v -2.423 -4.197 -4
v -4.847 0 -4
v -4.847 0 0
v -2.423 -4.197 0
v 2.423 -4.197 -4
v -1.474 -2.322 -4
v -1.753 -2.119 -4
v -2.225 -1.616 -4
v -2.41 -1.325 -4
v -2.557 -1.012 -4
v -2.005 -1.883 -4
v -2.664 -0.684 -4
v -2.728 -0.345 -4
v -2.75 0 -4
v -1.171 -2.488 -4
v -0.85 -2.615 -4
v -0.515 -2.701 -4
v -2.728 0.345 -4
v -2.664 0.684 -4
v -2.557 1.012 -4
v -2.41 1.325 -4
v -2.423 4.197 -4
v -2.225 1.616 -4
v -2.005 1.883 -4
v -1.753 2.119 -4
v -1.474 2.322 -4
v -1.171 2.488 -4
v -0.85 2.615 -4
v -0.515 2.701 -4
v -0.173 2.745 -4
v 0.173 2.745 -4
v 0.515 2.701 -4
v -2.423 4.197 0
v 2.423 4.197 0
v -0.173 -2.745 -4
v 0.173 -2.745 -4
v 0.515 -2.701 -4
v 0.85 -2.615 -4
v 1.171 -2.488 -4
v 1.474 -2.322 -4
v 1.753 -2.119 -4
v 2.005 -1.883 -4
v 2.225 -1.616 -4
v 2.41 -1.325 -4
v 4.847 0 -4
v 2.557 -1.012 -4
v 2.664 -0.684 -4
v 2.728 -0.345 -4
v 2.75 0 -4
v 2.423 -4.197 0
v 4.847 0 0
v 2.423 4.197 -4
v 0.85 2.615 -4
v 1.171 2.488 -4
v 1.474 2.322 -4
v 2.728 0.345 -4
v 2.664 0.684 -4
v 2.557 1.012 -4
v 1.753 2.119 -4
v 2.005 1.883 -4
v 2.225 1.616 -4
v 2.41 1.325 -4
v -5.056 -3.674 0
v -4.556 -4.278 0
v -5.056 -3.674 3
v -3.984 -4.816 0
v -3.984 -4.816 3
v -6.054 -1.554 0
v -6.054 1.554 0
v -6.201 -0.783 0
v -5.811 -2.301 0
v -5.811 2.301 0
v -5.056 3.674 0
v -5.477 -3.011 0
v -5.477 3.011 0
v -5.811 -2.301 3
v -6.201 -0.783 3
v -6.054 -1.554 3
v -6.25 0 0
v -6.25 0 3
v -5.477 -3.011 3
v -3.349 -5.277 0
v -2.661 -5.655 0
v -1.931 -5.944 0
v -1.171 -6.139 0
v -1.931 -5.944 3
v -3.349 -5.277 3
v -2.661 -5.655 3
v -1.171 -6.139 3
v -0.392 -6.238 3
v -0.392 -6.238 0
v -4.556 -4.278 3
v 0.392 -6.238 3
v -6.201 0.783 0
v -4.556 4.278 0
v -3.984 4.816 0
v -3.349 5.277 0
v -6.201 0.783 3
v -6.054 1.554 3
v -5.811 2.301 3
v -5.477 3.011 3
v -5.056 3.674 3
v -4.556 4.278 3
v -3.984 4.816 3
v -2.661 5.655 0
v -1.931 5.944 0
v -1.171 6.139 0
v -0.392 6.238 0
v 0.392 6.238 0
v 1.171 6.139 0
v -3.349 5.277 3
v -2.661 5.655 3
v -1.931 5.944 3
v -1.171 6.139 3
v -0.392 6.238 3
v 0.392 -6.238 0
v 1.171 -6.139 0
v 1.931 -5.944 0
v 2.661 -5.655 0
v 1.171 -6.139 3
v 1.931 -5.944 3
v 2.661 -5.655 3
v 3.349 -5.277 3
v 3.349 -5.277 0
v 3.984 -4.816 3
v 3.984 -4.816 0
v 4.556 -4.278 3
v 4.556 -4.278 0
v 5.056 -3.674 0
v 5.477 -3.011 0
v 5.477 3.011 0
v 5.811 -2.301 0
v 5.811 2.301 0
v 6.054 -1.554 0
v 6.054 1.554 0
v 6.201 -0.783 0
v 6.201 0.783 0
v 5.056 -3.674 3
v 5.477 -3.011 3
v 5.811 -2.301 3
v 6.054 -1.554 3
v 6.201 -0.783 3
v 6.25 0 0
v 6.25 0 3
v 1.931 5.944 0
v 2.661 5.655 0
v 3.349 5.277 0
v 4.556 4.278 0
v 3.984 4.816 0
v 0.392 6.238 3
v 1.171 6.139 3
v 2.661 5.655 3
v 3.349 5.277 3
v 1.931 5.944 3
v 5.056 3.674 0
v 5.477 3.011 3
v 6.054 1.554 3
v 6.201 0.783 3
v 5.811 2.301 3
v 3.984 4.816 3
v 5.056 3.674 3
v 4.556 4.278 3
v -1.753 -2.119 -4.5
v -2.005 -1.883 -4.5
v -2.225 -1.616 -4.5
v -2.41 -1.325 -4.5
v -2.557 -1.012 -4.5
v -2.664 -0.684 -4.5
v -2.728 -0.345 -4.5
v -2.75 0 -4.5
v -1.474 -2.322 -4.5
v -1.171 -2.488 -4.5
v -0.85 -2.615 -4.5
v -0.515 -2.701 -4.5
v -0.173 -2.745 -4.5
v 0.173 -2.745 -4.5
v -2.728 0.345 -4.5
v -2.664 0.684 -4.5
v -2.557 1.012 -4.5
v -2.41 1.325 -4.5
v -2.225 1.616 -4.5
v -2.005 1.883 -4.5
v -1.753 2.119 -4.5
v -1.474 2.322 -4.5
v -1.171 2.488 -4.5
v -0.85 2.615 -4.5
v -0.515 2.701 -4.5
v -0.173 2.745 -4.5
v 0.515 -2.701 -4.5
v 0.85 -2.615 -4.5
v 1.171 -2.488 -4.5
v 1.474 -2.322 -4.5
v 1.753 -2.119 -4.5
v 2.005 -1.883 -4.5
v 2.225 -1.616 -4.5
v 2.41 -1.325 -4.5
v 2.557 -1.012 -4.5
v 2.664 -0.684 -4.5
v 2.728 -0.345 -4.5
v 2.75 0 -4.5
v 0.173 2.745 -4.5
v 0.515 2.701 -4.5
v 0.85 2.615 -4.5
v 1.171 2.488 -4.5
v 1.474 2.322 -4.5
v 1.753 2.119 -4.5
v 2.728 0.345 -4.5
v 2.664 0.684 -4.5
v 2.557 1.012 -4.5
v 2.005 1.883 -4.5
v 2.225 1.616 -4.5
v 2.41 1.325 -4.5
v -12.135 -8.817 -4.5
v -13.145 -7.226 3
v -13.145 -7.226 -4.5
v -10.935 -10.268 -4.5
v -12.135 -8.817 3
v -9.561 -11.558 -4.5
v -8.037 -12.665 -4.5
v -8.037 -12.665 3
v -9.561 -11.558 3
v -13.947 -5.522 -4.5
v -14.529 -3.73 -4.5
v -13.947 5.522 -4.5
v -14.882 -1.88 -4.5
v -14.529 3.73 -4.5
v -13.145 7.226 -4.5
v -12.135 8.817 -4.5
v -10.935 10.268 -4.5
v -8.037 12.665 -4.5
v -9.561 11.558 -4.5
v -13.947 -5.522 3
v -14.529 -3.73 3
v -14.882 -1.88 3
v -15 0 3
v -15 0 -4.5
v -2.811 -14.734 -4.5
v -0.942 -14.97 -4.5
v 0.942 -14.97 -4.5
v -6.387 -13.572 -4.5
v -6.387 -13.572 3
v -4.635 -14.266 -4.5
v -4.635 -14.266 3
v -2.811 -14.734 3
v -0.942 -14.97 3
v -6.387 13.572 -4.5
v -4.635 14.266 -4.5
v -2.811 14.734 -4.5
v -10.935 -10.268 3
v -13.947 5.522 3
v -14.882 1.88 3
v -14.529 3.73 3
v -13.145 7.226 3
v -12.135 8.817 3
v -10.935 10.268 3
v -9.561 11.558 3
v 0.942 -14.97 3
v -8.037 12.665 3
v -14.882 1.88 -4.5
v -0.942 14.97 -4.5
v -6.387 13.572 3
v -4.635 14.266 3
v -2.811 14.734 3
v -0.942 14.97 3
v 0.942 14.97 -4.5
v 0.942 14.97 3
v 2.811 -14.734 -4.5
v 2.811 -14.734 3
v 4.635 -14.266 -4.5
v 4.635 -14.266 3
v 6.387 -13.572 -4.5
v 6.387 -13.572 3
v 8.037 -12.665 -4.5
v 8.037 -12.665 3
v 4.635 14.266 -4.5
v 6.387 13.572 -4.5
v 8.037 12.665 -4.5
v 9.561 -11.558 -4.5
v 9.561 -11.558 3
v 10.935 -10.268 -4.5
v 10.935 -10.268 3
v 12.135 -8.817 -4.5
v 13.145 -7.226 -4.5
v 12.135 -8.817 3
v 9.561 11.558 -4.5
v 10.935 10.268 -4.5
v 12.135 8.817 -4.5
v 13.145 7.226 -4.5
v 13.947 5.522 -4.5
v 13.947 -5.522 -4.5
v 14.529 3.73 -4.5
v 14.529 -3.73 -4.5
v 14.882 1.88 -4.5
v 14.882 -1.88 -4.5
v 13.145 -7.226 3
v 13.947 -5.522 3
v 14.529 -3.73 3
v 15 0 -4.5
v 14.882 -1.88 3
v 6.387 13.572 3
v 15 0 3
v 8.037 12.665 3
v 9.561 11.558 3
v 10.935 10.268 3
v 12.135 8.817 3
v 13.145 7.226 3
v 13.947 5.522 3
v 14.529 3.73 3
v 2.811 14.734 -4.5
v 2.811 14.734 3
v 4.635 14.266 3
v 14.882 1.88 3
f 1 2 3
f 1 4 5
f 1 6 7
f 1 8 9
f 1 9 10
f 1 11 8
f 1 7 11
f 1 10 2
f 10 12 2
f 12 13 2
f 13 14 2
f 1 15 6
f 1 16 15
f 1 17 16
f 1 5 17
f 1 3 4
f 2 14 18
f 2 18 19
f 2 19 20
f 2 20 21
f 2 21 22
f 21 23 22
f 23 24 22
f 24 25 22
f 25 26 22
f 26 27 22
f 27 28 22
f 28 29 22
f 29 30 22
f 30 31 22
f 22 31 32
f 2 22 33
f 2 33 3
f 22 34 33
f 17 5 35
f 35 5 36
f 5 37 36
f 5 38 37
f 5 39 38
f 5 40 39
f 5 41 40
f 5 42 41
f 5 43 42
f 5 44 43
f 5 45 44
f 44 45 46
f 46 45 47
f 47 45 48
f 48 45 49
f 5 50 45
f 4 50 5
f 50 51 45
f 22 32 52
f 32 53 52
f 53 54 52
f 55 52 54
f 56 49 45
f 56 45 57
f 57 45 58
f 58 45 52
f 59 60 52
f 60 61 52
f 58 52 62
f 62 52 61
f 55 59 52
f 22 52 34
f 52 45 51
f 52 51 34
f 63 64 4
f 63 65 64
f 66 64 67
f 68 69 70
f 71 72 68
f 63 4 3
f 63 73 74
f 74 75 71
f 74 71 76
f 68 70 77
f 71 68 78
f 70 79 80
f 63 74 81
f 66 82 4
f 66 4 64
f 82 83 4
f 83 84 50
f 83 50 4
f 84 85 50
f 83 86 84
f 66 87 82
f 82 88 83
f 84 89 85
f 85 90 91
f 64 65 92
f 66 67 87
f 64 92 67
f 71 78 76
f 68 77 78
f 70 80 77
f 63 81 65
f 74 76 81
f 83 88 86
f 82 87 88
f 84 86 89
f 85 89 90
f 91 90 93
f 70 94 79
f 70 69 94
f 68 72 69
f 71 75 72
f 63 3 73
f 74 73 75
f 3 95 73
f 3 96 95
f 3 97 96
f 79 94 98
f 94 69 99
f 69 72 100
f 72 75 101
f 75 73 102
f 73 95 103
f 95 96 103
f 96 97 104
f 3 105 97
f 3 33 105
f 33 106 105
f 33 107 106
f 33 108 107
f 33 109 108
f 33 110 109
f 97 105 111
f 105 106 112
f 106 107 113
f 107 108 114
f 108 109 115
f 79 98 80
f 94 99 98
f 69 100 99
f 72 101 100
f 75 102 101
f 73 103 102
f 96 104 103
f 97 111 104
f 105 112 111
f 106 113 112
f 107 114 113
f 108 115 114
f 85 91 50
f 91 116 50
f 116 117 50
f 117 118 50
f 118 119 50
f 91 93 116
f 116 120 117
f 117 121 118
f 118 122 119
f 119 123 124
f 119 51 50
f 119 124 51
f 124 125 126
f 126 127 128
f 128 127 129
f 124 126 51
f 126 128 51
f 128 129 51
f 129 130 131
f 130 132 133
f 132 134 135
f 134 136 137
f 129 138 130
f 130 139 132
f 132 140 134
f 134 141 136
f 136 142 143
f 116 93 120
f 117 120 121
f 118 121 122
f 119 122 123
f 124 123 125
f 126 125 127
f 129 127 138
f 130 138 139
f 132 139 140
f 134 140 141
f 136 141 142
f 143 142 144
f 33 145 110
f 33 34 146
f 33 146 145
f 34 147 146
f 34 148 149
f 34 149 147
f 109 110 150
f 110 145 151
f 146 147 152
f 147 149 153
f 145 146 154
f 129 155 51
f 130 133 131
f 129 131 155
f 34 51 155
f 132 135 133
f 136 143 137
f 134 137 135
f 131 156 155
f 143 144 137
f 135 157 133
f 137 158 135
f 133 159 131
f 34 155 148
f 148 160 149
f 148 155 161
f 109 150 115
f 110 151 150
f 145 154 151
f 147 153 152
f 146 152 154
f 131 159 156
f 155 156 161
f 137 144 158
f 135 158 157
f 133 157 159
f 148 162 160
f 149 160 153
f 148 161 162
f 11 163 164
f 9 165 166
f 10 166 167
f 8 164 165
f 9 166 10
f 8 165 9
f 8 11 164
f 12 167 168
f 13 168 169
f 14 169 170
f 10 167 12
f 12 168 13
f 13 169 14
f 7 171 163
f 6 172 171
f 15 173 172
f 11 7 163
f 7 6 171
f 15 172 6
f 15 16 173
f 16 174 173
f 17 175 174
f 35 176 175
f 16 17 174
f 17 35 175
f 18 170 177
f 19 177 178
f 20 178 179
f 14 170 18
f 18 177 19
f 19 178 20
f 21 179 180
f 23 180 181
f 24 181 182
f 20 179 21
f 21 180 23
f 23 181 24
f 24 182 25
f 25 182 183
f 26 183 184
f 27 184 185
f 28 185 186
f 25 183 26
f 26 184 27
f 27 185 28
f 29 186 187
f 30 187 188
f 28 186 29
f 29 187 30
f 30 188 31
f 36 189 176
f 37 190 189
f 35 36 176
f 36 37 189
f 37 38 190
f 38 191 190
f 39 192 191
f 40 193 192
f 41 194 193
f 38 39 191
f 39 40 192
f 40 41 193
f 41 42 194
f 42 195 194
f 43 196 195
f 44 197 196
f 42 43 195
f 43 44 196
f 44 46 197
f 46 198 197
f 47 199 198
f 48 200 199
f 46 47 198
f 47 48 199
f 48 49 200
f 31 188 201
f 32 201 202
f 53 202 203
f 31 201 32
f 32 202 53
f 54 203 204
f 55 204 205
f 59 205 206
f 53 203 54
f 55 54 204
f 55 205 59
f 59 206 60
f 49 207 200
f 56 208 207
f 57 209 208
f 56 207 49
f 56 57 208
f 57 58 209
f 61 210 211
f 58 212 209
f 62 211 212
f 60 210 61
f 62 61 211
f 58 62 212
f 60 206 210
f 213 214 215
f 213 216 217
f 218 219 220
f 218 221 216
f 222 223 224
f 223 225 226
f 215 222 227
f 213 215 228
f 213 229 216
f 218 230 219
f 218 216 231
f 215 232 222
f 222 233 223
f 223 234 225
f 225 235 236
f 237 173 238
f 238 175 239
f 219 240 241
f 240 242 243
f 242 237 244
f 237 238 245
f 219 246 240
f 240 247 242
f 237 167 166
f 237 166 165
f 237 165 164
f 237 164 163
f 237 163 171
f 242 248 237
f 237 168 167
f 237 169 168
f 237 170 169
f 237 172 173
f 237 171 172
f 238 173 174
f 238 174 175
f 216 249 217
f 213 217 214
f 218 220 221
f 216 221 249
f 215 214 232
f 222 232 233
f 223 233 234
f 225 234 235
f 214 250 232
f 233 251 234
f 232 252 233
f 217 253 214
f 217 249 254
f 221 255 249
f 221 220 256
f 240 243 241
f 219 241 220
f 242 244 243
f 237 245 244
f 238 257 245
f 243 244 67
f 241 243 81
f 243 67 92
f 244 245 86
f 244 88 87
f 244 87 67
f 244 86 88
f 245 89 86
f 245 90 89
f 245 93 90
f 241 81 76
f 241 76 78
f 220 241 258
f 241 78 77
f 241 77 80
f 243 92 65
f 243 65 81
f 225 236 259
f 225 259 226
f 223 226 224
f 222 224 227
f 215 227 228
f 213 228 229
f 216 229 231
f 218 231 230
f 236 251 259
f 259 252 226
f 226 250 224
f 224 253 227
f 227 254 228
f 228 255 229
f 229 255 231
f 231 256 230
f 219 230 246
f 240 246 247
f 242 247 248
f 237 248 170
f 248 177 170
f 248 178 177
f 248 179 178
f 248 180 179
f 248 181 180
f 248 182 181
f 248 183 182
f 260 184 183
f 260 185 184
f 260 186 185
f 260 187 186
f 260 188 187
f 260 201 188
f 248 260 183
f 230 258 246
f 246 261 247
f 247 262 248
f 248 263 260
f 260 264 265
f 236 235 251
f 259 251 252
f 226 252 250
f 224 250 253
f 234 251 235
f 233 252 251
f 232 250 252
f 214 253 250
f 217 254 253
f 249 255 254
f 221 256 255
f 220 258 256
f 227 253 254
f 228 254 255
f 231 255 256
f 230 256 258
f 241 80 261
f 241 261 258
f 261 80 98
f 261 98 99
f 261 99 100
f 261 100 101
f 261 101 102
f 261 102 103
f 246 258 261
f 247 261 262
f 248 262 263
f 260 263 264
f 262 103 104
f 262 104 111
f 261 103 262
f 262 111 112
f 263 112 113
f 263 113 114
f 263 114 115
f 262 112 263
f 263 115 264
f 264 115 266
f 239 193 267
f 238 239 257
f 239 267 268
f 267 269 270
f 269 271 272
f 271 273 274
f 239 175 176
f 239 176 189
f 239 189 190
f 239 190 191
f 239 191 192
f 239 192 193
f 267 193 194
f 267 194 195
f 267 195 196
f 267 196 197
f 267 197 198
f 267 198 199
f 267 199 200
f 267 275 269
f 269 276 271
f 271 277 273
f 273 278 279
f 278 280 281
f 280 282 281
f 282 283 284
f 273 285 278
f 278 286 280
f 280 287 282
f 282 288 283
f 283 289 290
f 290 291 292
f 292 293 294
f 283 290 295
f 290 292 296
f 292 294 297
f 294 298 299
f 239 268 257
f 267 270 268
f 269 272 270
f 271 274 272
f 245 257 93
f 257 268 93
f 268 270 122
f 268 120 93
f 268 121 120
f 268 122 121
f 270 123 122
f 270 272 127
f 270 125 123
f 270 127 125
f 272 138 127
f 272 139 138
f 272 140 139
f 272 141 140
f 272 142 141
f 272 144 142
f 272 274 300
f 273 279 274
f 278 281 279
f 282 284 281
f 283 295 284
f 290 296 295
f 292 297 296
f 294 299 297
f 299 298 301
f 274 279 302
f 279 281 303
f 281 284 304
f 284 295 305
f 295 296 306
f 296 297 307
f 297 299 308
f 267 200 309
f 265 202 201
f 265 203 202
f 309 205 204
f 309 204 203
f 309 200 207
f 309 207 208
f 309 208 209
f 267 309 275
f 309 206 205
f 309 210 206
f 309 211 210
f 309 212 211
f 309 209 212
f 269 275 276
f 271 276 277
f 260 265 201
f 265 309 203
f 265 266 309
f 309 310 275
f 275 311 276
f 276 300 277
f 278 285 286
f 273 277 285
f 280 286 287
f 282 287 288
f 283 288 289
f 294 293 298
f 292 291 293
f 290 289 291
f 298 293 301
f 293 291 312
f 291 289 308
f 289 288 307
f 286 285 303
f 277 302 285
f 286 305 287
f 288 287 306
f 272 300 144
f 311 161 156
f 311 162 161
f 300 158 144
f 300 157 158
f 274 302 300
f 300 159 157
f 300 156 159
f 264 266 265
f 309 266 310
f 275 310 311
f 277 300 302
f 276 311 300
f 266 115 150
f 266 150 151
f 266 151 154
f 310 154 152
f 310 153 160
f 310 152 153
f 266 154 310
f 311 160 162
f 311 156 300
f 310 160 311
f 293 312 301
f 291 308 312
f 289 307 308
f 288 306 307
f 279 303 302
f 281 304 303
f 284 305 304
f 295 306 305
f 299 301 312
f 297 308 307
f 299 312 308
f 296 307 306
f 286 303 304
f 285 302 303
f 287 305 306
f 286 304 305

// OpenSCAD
$fn = 50;

difference() {
	union() {
		translate(v = [0, 0, -4.5]) {
			cylinder(h = 7.5, r = 15.0);
		}
	}
	union() {
		translate(v = [0, 0, 0]) {
			rotate(a = [0, 0, 0]) {
				difference() {
					union() {
						translate(v = [0, 0, -4]) {
							linear_extrude(height = 4) {
								polygon(points = [[4.8468, 0.0], [2.4234000000000004, 4.197451927062417], [-2.423399999999999, 4.197451927062417], [-4.8468, 5.935618106107392e-16], [-2.423400000000002, -4.197451927062416], [2.423399999999997, -4.197451927062419]]);
							}
						}
					}
					union();
				}
			}
		}
		#cylinder(h = 3, r = 6.25);
		#translate(v = [0, 0, -100.0]) {
			cylinder(h = 200, r = 2.75);
		}
	}
}
